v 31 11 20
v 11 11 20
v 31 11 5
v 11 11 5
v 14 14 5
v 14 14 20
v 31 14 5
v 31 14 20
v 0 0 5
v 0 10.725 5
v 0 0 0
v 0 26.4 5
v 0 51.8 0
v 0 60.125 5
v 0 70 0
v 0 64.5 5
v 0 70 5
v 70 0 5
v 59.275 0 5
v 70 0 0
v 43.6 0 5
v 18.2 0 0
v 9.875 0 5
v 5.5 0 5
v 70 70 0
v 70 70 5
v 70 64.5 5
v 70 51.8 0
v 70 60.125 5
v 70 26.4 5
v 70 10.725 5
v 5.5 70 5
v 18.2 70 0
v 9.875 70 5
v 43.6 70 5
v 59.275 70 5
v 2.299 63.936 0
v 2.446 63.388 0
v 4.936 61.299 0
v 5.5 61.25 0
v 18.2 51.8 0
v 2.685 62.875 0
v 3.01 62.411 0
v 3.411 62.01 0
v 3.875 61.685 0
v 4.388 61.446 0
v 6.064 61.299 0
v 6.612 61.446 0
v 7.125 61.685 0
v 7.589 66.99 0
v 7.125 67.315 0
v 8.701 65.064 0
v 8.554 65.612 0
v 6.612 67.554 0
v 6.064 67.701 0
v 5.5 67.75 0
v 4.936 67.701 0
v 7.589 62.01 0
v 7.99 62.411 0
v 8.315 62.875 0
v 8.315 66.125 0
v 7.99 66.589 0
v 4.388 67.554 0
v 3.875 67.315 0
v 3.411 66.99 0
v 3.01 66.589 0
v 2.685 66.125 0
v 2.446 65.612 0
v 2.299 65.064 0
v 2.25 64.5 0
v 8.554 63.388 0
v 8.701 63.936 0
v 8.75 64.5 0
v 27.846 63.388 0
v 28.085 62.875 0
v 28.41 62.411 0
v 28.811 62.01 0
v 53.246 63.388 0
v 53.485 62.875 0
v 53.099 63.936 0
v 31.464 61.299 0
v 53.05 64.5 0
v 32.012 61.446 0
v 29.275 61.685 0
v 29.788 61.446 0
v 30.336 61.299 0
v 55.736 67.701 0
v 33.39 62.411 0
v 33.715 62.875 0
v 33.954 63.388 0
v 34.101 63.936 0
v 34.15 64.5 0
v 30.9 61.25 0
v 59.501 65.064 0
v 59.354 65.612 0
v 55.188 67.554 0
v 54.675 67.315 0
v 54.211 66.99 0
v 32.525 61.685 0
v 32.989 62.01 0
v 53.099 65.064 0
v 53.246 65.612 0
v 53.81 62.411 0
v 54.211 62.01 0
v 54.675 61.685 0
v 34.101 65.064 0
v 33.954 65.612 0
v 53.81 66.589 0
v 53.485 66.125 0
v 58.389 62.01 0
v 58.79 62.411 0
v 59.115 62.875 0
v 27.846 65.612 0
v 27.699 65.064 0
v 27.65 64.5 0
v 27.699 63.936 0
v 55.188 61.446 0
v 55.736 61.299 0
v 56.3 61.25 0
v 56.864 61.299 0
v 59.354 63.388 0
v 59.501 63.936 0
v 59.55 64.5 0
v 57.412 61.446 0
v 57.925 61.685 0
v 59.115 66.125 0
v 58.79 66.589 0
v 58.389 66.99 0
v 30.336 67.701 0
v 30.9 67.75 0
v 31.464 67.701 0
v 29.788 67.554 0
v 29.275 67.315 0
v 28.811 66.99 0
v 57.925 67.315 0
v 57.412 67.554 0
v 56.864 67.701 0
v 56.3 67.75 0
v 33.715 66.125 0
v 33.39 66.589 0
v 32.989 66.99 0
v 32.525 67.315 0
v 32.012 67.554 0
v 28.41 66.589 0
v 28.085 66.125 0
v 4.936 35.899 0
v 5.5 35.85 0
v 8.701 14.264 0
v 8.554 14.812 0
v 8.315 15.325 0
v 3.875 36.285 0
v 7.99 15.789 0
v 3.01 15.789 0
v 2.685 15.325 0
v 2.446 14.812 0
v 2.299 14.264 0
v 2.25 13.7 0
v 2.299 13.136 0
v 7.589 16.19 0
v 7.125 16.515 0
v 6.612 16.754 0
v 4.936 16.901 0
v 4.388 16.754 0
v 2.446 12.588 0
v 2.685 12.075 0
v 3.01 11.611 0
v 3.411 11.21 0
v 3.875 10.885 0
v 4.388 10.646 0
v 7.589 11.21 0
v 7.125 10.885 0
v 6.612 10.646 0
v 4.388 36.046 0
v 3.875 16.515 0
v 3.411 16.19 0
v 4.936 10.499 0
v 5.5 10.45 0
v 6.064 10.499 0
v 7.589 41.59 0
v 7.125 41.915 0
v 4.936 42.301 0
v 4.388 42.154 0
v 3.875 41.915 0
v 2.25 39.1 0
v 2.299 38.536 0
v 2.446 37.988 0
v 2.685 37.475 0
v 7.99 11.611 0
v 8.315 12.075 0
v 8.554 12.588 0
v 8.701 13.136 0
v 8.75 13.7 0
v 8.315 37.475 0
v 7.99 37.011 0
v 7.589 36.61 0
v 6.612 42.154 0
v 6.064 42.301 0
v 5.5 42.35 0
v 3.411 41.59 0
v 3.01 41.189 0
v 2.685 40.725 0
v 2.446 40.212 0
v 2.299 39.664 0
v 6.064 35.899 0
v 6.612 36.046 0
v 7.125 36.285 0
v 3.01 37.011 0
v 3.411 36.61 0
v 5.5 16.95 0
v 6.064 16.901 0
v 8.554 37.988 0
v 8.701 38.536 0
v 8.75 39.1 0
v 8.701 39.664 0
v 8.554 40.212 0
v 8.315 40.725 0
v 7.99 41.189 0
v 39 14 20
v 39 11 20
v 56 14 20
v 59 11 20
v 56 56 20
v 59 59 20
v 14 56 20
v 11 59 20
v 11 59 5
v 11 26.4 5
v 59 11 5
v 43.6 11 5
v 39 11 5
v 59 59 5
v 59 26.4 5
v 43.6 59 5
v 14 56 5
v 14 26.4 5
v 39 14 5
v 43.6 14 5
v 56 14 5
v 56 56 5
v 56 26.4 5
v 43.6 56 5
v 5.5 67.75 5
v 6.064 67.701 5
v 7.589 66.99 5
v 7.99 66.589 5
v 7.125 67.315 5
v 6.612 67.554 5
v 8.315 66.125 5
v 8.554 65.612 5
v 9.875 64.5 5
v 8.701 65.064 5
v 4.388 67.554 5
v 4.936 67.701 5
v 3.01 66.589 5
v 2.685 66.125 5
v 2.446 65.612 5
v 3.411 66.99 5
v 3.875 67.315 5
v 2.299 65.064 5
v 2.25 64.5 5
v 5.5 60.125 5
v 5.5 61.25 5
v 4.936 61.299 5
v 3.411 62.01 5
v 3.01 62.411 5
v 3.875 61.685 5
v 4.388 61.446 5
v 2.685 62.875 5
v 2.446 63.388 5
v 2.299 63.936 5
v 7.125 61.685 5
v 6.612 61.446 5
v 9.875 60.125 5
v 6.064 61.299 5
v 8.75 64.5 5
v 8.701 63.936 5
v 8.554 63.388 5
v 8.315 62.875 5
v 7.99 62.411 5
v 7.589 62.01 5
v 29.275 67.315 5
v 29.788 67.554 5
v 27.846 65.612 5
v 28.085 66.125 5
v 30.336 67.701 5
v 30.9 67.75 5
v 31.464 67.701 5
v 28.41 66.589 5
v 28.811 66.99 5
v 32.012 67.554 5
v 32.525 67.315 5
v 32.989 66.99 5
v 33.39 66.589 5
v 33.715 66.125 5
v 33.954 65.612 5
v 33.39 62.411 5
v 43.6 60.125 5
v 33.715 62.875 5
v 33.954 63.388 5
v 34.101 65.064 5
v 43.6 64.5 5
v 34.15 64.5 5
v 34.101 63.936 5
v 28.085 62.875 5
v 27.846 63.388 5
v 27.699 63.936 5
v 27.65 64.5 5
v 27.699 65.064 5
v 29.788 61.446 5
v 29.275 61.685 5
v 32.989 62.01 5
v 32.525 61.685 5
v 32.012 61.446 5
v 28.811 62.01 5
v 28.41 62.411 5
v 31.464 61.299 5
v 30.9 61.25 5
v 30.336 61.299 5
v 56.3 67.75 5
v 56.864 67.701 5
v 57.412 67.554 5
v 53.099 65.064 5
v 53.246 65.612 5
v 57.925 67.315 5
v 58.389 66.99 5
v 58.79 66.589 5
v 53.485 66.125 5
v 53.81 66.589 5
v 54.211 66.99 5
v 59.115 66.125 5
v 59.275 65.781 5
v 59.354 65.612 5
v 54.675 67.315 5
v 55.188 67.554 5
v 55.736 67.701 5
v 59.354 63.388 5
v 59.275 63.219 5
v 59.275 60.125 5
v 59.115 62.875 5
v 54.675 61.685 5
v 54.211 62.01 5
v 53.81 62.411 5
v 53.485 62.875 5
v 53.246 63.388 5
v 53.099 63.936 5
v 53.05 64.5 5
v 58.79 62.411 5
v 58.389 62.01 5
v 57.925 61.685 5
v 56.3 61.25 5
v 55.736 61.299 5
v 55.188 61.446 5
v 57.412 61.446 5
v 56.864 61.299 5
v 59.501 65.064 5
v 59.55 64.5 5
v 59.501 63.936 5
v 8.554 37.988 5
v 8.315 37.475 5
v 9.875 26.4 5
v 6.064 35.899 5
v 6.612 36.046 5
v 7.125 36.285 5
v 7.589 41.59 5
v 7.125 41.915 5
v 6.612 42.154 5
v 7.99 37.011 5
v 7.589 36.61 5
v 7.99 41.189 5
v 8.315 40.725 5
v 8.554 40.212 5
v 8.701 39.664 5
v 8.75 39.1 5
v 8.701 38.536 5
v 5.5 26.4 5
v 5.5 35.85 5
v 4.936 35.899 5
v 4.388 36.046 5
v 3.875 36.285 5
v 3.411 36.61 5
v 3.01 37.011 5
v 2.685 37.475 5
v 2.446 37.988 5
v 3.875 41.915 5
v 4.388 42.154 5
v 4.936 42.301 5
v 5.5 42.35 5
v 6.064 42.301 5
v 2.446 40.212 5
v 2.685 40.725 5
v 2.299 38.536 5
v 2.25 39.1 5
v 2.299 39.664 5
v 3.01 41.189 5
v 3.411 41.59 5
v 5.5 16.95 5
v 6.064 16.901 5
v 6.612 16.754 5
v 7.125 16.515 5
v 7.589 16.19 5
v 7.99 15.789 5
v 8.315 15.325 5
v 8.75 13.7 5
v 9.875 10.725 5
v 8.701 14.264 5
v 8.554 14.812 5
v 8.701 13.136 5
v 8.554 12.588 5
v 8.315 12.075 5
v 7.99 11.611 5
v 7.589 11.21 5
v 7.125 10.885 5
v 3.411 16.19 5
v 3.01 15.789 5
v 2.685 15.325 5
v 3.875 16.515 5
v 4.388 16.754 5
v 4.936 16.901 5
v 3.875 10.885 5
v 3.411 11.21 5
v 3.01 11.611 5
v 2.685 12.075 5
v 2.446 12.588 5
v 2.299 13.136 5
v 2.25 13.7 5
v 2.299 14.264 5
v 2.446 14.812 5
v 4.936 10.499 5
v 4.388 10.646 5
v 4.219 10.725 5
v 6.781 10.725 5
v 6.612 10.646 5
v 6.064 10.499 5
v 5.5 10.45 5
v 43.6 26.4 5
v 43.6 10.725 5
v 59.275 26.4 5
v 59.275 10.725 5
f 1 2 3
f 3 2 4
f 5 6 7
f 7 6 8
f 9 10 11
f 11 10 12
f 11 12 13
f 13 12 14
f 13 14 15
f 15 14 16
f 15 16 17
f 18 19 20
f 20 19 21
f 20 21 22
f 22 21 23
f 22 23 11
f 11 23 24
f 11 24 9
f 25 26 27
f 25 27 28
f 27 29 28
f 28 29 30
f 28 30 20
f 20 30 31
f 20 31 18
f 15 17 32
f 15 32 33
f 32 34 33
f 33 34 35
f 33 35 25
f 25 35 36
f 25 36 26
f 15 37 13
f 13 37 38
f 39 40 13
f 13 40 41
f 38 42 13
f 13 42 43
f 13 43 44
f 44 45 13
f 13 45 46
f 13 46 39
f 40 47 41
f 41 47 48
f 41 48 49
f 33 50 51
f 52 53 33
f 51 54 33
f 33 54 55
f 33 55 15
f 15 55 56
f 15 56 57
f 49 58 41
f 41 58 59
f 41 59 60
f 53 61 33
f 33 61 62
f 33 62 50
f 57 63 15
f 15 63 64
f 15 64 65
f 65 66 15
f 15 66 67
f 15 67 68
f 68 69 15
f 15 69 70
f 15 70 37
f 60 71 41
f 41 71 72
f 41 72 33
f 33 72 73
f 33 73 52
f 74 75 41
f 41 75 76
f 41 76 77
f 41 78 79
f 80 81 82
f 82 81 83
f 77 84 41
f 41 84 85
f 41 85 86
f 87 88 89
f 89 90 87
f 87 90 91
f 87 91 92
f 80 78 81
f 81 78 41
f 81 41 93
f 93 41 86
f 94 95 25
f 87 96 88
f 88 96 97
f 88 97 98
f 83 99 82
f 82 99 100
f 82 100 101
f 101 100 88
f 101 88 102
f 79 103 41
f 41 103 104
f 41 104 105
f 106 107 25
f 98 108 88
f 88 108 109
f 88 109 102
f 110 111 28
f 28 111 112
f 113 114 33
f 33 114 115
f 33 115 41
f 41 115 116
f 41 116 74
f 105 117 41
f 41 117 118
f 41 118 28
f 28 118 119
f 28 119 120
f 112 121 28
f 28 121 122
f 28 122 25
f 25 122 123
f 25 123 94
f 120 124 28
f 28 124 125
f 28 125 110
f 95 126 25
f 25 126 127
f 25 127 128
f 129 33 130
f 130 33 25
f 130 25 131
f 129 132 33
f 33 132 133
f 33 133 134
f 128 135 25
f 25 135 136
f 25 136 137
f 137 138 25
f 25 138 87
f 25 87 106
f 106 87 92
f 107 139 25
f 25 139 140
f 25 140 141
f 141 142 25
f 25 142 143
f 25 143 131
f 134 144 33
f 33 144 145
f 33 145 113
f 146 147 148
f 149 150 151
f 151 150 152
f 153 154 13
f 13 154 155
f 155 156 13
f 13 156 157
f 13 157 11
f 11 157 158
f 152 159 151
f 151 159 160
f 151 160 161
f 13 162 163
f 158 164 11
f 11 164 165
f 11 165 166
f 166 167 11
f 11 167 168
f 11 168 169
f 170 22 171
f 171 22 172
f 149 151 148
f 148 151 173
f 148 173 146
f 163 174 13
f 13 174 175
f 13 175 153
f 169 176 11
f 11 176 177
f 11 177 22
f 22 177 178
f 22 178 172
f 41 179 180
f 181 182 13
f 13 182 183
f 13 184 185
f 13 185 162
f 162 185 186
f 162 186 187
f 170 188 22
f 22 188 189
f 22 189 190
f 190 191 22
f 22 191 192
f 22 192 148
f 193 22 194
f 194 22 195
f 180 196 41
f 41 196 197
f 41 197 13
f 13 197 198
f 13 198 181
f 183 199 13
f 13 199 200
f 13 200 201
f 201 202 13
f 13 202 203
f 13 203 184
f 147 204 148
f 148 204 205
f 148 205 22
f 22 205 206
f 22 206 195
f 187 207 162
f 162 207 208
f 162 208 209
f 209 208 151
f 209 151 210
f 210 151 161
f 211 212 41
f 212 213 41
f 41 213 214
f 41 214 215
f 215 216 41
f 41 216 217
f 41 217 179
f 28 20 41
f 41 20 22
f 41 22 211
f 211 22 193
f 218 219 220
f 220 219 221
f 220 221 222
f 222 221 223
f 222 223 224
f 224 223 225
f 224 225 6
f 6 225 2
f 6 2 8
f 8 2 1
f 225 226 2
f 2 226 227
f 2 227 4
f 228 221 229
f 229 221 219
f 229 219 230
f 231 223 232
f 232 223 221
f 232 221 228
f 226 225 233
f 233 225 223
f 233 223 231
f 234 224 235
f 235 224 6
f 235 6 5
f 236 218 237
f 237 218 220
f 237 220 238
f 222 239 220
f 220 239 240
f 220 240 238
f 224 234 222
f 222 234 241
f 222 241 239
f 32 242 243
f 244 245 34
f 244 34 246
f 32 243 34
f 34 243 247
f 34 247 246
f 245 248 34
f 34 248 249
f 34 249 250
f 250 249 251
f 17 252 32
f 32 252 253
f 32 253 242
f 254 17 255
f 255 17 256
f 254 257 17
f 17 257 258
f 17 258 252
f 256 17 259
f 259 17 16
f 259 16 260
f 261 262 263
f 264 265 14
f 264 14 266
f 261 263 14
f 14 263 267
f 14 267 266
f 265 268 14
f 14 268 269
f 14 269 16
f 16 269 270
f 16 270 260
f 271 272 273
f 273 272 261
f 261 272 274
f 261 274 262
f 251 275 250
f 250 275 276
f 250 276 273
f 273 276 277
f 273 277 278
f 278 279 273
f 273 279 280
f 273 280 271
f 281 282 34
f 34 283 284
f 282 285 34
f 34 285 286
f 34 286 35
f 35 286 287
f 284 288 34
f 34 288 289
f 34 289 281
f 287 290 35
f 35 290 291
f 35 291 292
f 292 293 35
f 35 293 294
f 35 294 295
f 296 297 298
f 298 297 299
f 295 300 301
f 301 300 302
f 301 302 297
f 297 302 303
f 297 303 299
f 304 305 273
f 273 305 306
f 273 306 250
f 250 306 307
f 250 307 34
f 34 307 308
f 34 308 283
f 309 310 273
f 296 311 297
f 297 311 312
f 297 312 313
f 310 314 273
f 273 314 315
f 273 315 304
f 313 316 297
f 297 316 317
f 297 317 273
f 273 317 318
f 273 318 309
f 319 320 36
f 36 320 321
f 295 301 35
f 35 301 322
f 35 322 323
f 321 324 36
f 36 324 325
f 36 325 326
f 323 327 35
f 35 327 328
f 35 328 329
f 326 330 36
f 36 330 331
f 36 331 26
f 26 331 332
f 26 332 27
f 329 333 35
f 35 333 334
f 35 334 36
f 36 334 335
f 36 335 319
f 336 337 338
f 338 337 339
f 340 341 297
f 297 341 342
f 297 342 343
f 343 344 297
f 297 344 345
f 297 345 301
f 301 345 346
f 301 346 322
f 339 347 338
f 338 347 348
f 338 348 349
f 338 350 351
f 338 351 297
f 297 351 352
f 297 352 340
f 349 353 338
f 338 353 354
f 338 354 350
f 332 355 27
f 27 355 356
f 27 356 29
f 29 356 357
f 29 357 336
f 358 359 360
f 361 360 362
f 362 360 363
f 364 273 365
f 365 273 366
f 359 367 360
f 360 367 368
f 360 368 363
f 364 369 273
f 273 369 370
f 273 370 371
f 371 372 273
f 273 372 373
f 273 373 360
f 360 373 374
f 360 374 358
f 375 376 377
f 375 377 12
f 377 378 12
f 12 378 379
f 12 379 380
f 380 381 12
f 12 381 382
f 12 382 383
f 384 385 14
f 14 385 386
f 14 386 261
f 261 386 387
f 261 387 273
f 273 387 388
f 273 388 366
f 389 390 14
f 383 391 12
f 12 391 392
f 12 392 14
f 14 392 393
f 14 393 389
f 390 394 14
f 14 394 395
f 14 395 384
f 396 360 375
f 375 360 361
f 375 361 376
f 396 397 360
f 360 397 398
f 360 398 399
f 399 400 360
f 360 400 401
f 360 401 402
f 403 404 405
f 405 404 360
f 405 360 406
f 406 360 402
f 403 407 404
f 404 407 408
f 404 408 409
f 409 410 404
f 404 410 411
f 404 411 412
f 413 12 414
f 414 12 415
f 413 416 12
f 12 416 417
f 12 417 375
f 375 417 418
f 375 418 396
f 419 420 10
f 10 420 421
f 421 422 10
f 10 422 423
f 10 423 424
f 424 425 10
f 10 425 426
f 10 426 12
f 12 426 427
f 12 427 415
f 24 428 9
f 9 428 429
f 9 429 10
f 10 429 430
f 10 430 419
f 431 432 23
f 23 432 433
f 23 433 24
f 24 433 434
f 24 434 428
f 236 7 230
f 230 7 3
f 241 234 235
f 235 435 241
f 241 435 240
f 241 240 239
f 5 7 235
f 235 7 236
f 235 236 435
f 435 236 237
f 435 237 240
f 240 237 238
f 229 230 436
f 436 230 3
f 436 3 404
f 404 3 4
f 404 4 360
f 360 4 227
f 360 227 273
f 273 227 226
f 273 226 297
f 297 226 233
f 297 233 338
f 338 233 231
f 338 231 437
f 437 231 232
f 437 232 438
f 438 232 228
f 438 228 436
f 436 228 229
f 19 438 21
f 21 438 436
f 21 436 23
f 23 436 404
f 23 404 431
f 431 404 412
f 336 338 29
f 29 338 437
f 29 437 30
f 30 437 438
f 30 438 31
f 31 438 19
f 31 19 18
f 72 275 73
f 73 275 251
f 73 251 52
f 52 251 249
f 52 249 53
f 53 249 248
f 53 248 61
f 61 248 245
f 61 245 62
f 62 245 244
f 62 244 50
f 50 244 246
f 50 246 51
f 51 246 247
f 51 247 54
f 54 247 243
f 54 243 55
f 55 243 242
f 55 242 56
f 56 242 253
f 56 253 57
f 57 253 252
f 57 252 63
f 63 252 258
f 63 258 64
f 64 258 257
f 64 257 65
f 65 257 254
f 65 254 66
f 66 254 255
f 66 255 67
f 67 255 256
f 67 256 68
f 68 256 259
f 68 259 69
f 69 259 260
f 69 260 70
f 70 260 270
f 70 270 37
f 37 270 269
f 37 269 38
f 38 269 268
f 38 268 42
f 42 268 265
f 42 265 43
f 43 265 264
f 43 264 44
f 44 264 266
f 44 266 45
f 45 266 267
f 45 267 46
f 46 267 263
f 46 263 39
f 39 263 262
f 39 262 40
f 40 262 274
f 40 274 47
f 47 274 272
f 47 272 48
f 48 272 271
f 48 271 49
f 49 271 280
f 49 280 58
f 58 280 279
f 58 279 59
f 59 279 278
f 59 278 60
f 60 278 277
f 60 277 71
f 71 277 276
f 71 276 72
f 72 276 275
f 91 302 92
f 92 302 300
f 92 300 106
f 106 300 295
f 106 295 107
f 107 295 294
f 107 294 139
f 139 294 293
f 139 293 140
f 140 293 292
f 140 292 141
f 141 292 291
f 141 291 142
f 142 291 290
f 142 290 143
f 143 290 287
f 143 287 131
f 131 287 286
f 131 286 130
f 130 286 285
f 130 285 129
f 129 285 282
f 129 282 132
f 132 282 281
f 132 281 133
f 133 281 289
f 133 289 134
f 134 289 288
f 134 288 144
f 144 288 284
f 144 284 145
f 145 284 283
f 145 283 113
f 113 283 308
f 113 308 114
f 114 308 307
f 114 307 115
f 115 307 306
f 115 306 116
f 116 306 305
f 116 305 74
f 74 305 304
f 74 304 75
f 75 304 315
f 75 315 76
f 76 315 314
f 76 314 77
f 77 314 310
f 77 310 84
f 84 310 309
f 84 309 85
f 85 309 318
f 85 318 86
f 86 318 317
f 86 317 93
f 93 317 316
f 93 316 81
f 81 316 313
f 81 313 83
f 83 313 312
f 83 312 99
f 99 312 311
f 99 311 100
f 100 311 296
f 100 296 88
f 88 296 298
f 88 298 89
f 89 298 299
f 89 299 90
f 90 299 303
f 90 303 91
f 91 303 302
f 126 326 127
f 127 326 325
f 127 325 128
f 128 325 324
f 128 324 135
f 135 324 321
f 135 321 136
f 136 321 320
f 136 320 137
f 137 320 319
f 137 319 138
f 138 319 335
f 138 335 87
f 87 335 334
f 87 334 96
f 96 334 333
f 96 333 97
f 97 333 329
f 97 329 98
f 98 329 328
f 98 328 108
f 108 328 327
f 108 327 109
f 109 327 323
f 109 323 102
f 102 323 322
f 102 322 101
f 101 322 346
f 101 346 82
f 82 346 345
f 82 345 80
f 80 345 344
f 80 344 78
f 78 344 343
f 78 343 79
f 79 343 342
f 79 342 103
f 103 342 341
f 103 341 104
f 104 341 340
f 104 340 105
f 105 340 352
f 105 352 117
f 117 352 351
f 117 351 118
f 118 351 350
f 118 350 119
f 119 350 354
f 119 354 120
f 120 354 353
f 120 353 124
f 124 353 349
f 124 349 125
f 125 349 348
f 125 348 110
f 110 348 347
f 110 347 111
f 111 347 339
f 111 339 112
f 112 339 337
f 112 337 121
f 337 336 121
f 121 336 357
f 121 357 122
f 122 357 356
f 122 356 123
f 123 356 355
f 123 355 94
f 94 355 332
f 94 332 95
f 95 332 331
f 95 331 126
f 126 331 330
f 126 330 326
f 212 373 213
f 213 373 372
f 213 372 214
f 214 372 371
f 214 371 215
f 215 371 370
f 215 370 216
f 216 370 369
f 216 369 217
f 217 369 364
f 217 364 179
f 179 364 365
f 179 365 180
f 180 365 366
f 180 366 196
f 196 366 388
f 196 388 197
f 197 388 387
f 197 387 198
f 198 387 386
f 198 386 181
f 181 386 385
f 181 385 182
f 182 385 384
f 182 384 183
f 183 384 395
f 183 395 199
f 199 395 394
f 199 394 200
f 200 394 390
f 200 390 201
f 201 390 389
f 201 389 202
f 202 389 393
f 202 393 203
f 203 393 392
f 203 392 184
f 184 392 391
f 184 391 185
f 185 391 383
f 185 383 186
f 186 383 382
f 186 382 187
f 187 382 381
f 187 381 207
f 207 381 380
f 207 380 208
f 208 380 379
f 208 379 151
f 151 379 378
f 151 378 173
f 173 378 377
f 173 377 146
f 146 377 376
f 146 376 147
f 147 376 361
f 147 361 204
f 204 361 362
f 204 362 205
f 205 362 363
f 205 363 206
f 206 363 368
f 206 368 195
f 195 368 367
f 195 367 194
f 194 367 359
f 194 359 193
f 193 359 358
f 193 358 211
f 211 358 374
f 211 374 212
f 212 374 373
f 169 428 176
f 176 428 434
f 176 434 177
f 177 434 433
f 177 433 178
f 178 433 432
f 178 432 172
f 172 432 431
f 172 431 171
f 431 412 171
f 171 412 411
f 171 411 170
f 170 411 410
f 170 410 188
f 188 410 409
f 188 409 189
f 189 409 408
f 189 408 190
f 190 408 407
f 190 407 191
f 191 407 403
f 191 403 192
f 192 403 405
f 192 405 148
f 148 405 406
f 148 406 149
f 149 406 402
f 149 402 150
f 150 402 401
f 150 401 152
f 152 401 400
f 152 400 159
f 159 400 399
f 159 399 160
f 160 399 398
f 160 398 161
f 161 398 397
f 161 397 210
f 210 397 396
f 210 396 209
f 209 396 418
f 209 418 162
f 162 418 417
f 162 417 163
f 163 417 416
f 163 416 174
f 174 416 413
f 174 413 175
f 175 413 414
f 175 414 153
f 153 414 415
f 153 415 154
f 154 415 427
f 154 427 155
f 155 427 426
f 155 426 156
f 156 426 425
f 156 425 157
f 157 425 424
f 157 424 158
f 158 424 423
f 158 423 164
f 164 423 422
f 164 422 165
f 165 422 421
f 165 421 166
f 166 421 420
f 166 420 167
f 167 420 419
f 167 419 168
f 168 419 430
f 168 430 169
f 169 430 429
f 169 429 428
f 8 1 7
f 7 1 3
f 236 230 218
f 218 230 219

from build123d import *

# Parameters (mm, degrees)
SKETCH1_W          = 70
SKETCH1_H          = 70
EXTRUDE1_DEPTH     = 5
SKETCH2_W          = 48
SKETCH2_H          = 48
SKETCH2_W_2        = 42
SKETCH2_H_2        = 42
EXTRUDE2_DEPTH     = 15
SKETCH5_R          = 3.25
CUT_EXTRUDE2_DEPTH = 101.124921973
SKETCH6_W          = 8
SKETCH6_H          = 8
CUT_EXTRUDE3_DEPTH = 15


with BuildPart() as part:
    # Sketch1 → Extrude1 (new body)
    with BuildSketch(Plane.XY):
        with Locations((35, 35)):
            Rectangle(SKETCH1_W, SKETCH1_H)
    extrude(amount=EXTRUDE1_DEPTH)

    # Sketch2 → Extrude2 (add)
    with BuildSketch(Plane.XY.offset(5)):
        with Locations((35, 35)):
            Rectangle(SKETCH2_W, SKETCH2_H)
        with Locations((35, 35)):
            Rectangle(SKETCH2_W_2, SKETCH2_H_2, mode=Mode.SUBTRACT)
    extrude(amount=EXTRUDE2_DEPTH)

    # Sketch5 → Cut-Extrude2 (cut, through all)
    with BuildSketch(Plane.XY.offset(5)):
        with Locations((5.5, 64.5)):
            Circle(SKETCH5_R)
        with Locations((30.9, 64.5)):
            Circle(SKETCH5_R)
        with Locations((56.3, 64.5)):
            Circle(SKETCH5_R)
        with Locations((5.5, 39.1)):
            Circle(SKETCH5_R)
        with Locations((5.5, 13.7)):
            Circle(SKETCH5_R)
    extrude(amount=-CUT_EXTRUDE2_DEPTH, mode=Mode.SUBTRACT)

    # Sketch6 → Cut-Extrude3 (cut)
    with BuildSketch(Plane.XY.offset(20)):
        with Locations((35, 14)):
            Rectangle(SKETCH6_W, SKETCH6_H)
    extrude(amount=-CUT_EXTRUDE3_DEPTH, mode=Mode.SUBTRACT)


solid = part.part
